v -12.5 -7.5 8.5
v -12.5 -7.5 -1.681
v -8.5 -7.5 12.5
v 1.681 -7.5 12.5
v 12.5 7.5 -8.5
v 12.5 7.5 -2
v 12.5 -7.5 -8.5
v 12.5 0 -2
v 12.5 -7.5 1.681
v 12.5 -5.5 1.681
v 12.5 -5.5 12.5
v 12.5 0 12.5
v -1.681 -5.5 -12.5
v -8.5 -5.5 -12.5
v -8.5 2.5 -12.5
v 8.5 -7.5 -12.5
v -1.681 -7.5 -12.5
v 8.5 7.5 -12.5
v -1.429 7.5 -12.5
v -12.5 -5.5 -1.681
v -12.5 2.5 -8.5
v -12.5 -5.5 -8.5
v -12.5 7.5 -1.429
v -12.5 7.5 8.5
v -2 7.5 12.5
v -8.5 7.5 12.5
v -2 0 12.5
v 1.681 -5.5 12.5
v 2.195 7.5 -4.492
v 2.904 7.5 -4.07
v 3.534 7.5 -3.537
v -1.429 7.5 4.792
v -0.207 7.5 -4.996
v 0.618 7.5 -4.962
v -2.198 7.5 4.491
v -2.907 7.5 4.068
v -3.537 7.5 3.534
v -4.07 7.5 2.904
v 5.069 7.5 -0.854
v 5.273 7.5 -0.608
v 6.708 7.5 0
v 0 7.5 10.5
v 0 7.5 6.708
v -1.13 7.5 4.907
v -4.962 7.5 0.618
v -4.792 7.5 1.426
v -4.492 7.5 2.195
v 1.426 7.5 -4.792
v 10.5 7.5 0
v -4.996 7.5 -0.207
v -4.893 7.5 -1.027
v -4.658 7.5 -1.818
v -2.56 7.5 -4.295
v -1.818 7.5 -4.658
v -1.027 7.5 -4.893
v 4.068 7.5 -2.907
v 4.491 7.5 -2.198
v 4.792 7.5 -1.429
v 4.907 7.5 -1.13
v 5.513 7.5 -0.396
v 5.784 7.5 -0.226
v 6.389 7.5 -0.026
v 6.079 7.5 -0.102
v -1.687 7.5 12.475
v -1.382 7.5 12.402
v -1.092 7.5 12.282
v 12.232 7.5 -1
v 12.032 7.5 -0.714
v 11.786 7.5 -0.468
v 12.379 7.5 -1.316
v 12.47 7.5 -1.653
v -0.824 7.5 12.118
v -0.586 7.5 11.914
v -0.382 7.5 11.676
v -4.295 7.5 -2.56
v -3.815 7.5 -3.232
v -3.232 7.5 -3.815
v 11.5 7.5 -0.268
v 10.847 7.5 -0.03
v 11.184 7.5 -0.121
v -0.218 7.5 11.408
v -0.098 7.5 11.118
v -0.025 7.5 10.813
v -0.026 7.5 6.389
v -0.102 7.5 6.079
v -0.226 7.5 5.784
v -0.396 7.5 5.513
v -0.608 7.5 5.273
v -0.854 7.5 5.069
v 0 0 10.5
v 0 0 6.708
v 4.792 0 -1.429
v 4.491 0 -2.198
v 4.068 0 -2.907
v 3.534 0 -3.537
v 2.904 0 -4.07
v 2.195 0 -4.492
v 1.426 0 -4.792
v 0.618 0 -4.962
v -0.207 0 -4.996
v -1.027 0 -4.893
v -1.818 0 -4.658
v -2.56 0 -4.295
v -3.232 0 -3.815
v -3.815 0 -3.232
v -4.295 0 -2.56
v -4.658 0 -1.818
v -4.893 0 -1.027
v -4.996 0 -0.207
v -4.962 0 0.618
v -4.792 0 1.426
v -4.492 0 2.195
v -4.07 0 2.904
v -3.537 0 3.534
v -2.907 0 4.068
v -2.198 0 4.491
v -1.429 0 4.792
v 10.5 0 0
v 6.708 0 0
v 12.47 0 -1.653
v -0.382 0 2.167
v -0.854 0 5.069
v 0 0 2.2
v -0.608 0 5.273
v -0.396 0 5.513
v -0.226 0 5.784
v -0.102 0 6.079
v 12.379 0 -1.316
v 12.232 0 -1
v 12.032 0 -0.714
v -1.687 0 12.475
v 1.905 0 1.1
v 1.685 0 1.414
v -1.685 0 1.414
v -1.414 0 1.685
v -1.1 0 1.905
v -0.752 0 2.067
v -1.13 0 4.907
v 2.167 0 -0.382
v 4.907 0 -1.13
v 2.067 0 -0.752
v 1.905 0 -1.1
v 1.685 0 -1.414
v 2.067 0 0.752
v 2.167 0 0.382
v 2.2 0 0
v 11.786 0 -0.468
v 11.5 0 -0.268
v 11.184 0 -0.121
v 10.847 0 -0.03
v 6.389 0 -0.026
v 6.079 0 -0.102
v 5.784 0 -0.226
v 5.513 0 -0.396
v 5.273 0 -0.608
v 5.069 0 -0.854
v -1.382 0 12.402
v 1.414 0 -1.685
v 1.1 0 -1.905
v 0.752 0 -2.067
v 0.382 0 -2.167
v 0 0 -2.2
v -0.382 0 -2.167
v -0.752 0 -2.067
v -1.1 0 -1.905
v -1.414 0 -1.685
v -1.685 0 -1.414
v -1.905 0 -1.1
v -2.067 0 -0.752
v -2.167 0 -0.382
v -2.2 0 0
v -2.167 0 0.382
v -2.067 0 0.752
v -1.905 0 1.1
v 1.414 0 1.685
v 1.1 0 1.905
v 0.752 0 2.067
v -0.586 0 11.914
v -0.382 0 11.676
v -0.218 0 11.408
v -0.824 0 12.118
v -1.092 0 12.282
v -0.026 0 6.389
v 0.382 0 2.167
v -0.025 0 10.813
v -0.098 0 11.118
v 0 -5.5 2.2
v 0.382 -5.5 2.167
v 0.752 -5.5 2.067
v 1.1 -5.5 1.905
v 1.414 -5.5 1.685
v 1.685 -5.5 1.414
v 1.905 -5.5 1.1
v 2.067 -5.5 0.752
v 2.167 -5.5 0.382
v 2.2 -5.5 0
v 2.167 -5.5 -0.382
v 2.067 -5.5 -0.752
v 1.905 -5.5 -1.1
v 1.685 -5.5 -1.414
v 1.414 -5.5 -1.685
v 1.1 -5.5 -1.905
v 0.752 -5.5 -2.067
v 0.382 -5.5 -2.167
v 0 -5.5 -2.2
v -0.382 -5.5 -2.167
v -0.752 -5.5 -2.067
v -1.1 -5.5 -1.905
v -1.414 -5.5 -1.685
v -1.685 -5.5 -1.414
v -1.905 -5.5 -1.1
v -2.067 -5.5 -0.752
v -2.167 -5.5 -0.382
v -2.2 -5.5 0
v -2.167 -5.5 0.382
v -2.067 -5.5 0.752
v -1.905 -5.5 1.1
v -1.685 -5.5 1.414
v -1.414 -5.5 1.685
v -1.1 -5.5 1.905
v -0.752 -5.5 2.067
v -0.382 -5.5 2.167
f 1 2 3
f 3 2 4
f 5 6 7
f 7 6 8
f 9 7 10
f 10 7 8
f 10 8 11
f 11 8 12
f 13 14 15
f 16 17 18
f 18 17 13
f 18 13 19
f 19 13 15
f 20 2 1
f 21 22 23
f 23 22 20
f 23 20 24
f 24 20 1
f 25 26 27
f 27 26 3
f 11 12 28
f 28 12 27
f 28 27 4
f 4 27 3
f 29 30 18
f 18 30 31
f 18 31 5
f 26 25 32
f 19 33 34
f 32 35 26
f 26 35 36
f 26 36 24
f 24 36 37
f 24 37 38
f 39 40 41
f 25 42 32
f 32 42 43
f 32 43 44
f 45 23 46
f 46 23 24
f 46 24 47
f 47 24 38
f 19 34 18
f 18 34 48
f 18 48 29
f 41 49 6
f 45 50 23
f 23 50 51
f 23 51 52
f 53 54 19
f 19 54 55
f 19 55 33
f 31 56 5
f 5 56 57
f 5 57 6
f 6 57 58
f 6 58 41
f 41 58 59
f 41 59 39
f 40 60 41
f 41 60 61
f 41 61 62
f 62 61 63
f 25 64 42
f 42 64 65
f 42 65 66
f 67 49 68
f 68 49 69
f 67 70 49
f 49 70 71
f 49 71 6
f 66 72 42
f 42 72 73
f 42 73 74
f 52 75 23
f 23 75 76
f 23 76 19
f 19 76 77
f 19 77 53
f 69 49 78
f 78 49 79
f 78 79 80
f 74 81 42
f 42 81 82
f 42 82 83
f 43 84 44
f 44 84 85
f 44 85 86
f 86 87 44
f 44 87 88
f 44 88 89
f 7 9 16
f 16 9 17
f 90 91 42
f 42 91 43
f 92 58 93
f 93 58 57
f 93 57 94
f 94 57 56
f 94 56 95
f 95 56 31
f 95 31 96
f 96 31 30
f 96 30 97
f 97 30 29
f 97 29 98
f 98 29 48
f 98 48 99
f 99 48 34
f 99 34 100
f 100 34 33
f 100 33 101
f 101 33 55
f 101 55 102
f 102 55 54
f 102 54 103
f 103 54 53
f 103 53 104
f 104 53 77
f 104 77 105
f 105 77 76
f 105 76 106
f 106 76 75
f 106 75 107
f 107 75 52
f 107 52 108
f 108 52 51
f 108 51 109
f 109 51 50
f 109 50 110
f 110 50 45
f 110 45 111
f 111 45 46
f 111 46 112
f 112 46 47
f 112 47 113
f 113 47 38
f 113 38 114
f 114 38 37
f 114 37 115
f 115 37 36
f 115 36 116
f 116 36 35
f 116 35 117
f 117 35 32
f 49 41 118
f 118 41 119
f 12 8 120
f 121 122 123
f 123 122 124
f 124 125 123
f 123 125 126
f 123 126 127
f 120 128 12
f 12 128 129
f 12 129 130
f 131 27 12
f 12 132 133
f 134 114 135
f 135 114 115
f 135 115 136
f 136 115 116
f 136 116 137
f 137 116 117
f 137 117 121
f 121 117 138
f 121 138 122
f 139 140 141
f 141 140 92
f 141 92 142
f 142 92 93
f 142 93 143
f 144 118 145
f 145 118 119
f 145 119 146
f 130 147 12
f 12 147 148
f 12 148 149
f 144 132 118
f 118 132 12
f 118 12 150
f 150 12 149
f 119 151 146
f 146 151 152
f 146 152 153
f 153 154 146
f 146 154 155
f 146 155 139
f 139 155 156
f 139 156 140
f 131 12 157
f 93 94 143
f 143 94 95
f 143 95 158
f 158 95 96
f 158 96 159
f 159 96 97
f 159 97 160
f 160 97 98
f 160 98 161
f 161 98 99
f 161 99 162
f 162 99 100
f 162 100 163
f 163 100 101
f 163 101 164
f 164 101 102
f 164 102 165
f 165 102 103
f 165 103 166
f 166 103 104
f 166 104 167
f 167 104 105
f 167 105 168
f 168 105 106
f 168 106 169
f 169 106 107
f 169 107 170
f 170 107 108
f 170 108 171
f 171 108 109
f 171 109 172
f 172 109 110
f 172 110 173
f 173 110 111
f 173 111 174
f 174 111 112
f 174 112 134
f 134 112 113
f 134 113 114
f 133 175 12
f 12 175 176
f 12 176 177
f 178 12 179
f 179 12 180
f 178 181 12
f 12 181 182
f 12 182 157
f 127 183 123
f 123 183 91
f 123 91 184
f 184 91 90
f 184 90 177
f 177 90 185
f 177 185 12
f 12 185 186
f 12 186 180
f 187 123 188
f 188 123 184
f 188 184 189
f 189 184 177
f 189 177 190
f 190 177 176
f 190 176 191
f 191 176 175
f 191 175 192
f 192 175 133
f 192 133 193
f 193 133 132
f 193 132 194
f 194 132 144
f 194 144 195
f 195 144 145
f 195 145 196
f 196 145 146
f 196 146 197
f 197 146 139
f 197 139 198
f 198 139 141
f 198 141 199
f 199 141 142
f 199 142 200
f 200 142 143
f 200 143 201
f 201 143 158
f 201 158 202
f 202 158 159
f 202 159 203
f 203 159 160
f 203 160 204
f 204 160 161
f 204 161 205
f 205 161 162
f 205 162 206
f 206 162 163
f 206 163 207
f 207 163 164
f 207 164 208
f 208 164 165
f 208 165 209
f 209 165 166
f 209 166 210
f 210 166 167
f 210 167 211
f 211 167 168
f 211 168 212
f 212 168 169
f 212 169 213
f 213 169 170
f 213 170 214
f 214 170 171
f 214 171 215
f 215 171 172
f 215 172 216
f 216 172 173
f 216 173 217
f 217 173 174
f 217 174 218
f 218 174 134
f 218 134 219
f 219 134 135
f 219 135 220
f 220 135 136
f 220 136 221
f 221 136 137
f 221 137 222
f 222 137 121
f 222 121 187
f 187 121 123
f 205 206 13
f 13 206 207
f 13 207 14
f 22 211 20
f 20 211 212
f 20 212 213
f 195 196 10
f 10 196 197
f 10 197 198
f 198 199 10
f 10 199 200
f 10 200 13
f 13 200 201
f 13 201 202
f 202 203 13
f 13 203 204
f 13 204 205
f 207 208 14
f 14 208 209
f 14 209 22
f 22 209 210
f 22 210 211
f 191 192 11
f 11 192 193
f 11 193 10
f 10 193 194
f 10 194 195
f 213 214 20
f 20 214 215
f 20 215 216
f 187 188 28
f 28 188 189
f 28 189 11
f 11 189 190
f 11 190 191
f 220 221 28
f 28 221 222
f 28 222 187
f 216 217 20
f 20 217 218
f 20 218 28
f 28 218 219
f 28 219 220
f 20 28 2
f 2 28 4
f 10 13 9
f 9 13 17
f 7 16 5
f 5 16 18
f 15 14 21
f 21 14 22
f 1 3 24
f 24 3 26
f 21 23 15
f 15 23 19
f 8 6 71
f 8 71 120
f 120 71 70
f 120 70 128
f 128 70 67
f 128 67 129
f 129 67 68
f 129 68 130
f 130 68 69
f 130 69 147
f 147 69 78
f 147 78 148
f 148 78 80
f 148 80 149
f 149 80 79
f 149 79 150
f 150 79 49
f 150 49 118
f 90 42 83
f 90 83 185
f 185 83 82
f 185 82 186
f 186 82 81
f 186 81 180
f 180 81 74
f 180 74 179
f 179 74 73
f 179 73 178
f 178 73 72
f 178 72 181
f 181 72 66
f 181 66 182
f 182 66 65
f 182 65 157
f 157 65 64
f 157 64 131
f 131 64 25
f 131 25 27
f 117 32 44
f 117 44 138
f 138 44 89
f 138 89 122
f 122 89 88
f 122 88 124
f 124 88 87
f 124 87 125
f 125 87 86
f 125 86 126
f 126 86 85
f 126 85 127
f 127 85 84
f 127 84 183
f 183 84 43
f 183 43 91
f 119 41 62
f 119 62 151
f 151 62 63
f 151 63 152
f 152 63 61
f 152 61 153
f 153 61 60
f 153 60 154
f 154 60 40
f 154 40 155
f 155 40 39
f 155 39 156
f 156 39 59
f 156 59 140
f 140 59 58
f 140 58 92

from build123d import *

# Parameters (mm, degrees)
SKETCH_1_W          = 25
SKETCH_1_H          = 25
EXTRUDE_1_DEPTH     = 7.5
CUT_EXTRUDE_START   = -7.5
CUT_EXTRUDE_3_DEPTH = 7.5
SKETCH_4_R          = 2.2
CUT_EXTRUDE_4_DEPTH = 20.20286437
CUT_EXTRUDE_5_DEPTH = 2
CHAMFER_1_SIZE      = 4
CHAMFER_2_SIZE      = 5
FILLET_3_R          = 2


with BuildPart() as part:
    # ｽｹｯﾁ1 → ﾎﾞｽ - 押し出し1 (new, symmetric)
    with BuildSketch(Plane(origin=(0, 0, 0), x_dir=(1, 0, 0), z_dir=(0, 1, 0))):
        Rectangle(SKETCH_1_W, SKETCH_1_H)
    extrude(amount=EXTRUDE_1_DEPTH, both=True)

    # ｽｹｯﾁ2 → ｶｯﾄ - 押し出し3 (cut)
    with BuildSketch(Plane(origin=(0, 7.5, 0), x_dir=(1, 0, 0), z_dir=(0, 1, 0)).offset(CUT_EXTRUDE_START)):
        with BuildLine():
            Line((12.5, 0), (5, 0))
            ThreePointArc((5, 0), (-3.535533906, 3.535533906), (0, -5))
            Line((0, -5), (0, -12.5))
            Line((0, -12.5), (12.5, -12.5))
            Line((12.5, -12.5), (12.5, 0))
        make_face()
    extrude(amount=CUT_EXTRUDE_3_DEPTH, mode=Mode.SUBTRACT)

    # ｽｹｯﾁ4 → ｶｯﾄ - 押し出し4 (cut, through all)
    with BuildSketch(Plane(origin=(0, 0, 0), x_dir=(1, 0, 0), z_dir=(0, 1, 0))):
        with Locations(Location((0, 0, 0), (0, 0, 270))):
            Circle(SKETCH_4_R)
    extrude(amount=-CUT_EXTRUDE_4_DEPTH, mode=Mode.SUBTRACT)

    # ｽｹｯﾁ5 → ｶｯﾄ - 押し出し5 (cut)
    with BuildSketch(Plane.XZ.offset(7.5)):
        Polygon((-12.5, -1.681266248), (1.681266248, 12.5), (12.5, 12.5), (12.5, 1.681266248), (-1.681266248, -12.5), (-12.5, -12.5), align=None)
    extrude(amount=-CUT_EXTRUDE_5_DEPTH, mode=Mode.SUBTRACT)

    # 面取り1
    chamfer_1_edges = [part.edges().sort_by_distance(p)[0] for p in [
        (-12.5, 0, 12.5),
        (-12.5, 1, -12.5),
        (12.5, 0, -12.5),
    ]]
    chamfer(chamfer_1_edges, length=CHAMFER_1_SIZE)

    # 面取り2
    chamfer_2_edges = [part.edges().sort_by_distance(p)[0] for p in [
        (-10.5, 7.5, -10.5),
    ]]
    chamfer(chamfer_2_edges, length=CHAMFER_2_SIZE)

    # ﾌｨﾚｯﾄ3
    fillet_3_edges = [part.edges().sort_by_distance(p)[0] for p in [
        (12.5, 3.75, 0),
        (0, 3.75, 12.5),
        (0, 3.75, 5),
        (5, 3.75, 0),
    ]]
    fillet(fillet_3_edges, radius=FILLET_3_R)


solid = part.part
